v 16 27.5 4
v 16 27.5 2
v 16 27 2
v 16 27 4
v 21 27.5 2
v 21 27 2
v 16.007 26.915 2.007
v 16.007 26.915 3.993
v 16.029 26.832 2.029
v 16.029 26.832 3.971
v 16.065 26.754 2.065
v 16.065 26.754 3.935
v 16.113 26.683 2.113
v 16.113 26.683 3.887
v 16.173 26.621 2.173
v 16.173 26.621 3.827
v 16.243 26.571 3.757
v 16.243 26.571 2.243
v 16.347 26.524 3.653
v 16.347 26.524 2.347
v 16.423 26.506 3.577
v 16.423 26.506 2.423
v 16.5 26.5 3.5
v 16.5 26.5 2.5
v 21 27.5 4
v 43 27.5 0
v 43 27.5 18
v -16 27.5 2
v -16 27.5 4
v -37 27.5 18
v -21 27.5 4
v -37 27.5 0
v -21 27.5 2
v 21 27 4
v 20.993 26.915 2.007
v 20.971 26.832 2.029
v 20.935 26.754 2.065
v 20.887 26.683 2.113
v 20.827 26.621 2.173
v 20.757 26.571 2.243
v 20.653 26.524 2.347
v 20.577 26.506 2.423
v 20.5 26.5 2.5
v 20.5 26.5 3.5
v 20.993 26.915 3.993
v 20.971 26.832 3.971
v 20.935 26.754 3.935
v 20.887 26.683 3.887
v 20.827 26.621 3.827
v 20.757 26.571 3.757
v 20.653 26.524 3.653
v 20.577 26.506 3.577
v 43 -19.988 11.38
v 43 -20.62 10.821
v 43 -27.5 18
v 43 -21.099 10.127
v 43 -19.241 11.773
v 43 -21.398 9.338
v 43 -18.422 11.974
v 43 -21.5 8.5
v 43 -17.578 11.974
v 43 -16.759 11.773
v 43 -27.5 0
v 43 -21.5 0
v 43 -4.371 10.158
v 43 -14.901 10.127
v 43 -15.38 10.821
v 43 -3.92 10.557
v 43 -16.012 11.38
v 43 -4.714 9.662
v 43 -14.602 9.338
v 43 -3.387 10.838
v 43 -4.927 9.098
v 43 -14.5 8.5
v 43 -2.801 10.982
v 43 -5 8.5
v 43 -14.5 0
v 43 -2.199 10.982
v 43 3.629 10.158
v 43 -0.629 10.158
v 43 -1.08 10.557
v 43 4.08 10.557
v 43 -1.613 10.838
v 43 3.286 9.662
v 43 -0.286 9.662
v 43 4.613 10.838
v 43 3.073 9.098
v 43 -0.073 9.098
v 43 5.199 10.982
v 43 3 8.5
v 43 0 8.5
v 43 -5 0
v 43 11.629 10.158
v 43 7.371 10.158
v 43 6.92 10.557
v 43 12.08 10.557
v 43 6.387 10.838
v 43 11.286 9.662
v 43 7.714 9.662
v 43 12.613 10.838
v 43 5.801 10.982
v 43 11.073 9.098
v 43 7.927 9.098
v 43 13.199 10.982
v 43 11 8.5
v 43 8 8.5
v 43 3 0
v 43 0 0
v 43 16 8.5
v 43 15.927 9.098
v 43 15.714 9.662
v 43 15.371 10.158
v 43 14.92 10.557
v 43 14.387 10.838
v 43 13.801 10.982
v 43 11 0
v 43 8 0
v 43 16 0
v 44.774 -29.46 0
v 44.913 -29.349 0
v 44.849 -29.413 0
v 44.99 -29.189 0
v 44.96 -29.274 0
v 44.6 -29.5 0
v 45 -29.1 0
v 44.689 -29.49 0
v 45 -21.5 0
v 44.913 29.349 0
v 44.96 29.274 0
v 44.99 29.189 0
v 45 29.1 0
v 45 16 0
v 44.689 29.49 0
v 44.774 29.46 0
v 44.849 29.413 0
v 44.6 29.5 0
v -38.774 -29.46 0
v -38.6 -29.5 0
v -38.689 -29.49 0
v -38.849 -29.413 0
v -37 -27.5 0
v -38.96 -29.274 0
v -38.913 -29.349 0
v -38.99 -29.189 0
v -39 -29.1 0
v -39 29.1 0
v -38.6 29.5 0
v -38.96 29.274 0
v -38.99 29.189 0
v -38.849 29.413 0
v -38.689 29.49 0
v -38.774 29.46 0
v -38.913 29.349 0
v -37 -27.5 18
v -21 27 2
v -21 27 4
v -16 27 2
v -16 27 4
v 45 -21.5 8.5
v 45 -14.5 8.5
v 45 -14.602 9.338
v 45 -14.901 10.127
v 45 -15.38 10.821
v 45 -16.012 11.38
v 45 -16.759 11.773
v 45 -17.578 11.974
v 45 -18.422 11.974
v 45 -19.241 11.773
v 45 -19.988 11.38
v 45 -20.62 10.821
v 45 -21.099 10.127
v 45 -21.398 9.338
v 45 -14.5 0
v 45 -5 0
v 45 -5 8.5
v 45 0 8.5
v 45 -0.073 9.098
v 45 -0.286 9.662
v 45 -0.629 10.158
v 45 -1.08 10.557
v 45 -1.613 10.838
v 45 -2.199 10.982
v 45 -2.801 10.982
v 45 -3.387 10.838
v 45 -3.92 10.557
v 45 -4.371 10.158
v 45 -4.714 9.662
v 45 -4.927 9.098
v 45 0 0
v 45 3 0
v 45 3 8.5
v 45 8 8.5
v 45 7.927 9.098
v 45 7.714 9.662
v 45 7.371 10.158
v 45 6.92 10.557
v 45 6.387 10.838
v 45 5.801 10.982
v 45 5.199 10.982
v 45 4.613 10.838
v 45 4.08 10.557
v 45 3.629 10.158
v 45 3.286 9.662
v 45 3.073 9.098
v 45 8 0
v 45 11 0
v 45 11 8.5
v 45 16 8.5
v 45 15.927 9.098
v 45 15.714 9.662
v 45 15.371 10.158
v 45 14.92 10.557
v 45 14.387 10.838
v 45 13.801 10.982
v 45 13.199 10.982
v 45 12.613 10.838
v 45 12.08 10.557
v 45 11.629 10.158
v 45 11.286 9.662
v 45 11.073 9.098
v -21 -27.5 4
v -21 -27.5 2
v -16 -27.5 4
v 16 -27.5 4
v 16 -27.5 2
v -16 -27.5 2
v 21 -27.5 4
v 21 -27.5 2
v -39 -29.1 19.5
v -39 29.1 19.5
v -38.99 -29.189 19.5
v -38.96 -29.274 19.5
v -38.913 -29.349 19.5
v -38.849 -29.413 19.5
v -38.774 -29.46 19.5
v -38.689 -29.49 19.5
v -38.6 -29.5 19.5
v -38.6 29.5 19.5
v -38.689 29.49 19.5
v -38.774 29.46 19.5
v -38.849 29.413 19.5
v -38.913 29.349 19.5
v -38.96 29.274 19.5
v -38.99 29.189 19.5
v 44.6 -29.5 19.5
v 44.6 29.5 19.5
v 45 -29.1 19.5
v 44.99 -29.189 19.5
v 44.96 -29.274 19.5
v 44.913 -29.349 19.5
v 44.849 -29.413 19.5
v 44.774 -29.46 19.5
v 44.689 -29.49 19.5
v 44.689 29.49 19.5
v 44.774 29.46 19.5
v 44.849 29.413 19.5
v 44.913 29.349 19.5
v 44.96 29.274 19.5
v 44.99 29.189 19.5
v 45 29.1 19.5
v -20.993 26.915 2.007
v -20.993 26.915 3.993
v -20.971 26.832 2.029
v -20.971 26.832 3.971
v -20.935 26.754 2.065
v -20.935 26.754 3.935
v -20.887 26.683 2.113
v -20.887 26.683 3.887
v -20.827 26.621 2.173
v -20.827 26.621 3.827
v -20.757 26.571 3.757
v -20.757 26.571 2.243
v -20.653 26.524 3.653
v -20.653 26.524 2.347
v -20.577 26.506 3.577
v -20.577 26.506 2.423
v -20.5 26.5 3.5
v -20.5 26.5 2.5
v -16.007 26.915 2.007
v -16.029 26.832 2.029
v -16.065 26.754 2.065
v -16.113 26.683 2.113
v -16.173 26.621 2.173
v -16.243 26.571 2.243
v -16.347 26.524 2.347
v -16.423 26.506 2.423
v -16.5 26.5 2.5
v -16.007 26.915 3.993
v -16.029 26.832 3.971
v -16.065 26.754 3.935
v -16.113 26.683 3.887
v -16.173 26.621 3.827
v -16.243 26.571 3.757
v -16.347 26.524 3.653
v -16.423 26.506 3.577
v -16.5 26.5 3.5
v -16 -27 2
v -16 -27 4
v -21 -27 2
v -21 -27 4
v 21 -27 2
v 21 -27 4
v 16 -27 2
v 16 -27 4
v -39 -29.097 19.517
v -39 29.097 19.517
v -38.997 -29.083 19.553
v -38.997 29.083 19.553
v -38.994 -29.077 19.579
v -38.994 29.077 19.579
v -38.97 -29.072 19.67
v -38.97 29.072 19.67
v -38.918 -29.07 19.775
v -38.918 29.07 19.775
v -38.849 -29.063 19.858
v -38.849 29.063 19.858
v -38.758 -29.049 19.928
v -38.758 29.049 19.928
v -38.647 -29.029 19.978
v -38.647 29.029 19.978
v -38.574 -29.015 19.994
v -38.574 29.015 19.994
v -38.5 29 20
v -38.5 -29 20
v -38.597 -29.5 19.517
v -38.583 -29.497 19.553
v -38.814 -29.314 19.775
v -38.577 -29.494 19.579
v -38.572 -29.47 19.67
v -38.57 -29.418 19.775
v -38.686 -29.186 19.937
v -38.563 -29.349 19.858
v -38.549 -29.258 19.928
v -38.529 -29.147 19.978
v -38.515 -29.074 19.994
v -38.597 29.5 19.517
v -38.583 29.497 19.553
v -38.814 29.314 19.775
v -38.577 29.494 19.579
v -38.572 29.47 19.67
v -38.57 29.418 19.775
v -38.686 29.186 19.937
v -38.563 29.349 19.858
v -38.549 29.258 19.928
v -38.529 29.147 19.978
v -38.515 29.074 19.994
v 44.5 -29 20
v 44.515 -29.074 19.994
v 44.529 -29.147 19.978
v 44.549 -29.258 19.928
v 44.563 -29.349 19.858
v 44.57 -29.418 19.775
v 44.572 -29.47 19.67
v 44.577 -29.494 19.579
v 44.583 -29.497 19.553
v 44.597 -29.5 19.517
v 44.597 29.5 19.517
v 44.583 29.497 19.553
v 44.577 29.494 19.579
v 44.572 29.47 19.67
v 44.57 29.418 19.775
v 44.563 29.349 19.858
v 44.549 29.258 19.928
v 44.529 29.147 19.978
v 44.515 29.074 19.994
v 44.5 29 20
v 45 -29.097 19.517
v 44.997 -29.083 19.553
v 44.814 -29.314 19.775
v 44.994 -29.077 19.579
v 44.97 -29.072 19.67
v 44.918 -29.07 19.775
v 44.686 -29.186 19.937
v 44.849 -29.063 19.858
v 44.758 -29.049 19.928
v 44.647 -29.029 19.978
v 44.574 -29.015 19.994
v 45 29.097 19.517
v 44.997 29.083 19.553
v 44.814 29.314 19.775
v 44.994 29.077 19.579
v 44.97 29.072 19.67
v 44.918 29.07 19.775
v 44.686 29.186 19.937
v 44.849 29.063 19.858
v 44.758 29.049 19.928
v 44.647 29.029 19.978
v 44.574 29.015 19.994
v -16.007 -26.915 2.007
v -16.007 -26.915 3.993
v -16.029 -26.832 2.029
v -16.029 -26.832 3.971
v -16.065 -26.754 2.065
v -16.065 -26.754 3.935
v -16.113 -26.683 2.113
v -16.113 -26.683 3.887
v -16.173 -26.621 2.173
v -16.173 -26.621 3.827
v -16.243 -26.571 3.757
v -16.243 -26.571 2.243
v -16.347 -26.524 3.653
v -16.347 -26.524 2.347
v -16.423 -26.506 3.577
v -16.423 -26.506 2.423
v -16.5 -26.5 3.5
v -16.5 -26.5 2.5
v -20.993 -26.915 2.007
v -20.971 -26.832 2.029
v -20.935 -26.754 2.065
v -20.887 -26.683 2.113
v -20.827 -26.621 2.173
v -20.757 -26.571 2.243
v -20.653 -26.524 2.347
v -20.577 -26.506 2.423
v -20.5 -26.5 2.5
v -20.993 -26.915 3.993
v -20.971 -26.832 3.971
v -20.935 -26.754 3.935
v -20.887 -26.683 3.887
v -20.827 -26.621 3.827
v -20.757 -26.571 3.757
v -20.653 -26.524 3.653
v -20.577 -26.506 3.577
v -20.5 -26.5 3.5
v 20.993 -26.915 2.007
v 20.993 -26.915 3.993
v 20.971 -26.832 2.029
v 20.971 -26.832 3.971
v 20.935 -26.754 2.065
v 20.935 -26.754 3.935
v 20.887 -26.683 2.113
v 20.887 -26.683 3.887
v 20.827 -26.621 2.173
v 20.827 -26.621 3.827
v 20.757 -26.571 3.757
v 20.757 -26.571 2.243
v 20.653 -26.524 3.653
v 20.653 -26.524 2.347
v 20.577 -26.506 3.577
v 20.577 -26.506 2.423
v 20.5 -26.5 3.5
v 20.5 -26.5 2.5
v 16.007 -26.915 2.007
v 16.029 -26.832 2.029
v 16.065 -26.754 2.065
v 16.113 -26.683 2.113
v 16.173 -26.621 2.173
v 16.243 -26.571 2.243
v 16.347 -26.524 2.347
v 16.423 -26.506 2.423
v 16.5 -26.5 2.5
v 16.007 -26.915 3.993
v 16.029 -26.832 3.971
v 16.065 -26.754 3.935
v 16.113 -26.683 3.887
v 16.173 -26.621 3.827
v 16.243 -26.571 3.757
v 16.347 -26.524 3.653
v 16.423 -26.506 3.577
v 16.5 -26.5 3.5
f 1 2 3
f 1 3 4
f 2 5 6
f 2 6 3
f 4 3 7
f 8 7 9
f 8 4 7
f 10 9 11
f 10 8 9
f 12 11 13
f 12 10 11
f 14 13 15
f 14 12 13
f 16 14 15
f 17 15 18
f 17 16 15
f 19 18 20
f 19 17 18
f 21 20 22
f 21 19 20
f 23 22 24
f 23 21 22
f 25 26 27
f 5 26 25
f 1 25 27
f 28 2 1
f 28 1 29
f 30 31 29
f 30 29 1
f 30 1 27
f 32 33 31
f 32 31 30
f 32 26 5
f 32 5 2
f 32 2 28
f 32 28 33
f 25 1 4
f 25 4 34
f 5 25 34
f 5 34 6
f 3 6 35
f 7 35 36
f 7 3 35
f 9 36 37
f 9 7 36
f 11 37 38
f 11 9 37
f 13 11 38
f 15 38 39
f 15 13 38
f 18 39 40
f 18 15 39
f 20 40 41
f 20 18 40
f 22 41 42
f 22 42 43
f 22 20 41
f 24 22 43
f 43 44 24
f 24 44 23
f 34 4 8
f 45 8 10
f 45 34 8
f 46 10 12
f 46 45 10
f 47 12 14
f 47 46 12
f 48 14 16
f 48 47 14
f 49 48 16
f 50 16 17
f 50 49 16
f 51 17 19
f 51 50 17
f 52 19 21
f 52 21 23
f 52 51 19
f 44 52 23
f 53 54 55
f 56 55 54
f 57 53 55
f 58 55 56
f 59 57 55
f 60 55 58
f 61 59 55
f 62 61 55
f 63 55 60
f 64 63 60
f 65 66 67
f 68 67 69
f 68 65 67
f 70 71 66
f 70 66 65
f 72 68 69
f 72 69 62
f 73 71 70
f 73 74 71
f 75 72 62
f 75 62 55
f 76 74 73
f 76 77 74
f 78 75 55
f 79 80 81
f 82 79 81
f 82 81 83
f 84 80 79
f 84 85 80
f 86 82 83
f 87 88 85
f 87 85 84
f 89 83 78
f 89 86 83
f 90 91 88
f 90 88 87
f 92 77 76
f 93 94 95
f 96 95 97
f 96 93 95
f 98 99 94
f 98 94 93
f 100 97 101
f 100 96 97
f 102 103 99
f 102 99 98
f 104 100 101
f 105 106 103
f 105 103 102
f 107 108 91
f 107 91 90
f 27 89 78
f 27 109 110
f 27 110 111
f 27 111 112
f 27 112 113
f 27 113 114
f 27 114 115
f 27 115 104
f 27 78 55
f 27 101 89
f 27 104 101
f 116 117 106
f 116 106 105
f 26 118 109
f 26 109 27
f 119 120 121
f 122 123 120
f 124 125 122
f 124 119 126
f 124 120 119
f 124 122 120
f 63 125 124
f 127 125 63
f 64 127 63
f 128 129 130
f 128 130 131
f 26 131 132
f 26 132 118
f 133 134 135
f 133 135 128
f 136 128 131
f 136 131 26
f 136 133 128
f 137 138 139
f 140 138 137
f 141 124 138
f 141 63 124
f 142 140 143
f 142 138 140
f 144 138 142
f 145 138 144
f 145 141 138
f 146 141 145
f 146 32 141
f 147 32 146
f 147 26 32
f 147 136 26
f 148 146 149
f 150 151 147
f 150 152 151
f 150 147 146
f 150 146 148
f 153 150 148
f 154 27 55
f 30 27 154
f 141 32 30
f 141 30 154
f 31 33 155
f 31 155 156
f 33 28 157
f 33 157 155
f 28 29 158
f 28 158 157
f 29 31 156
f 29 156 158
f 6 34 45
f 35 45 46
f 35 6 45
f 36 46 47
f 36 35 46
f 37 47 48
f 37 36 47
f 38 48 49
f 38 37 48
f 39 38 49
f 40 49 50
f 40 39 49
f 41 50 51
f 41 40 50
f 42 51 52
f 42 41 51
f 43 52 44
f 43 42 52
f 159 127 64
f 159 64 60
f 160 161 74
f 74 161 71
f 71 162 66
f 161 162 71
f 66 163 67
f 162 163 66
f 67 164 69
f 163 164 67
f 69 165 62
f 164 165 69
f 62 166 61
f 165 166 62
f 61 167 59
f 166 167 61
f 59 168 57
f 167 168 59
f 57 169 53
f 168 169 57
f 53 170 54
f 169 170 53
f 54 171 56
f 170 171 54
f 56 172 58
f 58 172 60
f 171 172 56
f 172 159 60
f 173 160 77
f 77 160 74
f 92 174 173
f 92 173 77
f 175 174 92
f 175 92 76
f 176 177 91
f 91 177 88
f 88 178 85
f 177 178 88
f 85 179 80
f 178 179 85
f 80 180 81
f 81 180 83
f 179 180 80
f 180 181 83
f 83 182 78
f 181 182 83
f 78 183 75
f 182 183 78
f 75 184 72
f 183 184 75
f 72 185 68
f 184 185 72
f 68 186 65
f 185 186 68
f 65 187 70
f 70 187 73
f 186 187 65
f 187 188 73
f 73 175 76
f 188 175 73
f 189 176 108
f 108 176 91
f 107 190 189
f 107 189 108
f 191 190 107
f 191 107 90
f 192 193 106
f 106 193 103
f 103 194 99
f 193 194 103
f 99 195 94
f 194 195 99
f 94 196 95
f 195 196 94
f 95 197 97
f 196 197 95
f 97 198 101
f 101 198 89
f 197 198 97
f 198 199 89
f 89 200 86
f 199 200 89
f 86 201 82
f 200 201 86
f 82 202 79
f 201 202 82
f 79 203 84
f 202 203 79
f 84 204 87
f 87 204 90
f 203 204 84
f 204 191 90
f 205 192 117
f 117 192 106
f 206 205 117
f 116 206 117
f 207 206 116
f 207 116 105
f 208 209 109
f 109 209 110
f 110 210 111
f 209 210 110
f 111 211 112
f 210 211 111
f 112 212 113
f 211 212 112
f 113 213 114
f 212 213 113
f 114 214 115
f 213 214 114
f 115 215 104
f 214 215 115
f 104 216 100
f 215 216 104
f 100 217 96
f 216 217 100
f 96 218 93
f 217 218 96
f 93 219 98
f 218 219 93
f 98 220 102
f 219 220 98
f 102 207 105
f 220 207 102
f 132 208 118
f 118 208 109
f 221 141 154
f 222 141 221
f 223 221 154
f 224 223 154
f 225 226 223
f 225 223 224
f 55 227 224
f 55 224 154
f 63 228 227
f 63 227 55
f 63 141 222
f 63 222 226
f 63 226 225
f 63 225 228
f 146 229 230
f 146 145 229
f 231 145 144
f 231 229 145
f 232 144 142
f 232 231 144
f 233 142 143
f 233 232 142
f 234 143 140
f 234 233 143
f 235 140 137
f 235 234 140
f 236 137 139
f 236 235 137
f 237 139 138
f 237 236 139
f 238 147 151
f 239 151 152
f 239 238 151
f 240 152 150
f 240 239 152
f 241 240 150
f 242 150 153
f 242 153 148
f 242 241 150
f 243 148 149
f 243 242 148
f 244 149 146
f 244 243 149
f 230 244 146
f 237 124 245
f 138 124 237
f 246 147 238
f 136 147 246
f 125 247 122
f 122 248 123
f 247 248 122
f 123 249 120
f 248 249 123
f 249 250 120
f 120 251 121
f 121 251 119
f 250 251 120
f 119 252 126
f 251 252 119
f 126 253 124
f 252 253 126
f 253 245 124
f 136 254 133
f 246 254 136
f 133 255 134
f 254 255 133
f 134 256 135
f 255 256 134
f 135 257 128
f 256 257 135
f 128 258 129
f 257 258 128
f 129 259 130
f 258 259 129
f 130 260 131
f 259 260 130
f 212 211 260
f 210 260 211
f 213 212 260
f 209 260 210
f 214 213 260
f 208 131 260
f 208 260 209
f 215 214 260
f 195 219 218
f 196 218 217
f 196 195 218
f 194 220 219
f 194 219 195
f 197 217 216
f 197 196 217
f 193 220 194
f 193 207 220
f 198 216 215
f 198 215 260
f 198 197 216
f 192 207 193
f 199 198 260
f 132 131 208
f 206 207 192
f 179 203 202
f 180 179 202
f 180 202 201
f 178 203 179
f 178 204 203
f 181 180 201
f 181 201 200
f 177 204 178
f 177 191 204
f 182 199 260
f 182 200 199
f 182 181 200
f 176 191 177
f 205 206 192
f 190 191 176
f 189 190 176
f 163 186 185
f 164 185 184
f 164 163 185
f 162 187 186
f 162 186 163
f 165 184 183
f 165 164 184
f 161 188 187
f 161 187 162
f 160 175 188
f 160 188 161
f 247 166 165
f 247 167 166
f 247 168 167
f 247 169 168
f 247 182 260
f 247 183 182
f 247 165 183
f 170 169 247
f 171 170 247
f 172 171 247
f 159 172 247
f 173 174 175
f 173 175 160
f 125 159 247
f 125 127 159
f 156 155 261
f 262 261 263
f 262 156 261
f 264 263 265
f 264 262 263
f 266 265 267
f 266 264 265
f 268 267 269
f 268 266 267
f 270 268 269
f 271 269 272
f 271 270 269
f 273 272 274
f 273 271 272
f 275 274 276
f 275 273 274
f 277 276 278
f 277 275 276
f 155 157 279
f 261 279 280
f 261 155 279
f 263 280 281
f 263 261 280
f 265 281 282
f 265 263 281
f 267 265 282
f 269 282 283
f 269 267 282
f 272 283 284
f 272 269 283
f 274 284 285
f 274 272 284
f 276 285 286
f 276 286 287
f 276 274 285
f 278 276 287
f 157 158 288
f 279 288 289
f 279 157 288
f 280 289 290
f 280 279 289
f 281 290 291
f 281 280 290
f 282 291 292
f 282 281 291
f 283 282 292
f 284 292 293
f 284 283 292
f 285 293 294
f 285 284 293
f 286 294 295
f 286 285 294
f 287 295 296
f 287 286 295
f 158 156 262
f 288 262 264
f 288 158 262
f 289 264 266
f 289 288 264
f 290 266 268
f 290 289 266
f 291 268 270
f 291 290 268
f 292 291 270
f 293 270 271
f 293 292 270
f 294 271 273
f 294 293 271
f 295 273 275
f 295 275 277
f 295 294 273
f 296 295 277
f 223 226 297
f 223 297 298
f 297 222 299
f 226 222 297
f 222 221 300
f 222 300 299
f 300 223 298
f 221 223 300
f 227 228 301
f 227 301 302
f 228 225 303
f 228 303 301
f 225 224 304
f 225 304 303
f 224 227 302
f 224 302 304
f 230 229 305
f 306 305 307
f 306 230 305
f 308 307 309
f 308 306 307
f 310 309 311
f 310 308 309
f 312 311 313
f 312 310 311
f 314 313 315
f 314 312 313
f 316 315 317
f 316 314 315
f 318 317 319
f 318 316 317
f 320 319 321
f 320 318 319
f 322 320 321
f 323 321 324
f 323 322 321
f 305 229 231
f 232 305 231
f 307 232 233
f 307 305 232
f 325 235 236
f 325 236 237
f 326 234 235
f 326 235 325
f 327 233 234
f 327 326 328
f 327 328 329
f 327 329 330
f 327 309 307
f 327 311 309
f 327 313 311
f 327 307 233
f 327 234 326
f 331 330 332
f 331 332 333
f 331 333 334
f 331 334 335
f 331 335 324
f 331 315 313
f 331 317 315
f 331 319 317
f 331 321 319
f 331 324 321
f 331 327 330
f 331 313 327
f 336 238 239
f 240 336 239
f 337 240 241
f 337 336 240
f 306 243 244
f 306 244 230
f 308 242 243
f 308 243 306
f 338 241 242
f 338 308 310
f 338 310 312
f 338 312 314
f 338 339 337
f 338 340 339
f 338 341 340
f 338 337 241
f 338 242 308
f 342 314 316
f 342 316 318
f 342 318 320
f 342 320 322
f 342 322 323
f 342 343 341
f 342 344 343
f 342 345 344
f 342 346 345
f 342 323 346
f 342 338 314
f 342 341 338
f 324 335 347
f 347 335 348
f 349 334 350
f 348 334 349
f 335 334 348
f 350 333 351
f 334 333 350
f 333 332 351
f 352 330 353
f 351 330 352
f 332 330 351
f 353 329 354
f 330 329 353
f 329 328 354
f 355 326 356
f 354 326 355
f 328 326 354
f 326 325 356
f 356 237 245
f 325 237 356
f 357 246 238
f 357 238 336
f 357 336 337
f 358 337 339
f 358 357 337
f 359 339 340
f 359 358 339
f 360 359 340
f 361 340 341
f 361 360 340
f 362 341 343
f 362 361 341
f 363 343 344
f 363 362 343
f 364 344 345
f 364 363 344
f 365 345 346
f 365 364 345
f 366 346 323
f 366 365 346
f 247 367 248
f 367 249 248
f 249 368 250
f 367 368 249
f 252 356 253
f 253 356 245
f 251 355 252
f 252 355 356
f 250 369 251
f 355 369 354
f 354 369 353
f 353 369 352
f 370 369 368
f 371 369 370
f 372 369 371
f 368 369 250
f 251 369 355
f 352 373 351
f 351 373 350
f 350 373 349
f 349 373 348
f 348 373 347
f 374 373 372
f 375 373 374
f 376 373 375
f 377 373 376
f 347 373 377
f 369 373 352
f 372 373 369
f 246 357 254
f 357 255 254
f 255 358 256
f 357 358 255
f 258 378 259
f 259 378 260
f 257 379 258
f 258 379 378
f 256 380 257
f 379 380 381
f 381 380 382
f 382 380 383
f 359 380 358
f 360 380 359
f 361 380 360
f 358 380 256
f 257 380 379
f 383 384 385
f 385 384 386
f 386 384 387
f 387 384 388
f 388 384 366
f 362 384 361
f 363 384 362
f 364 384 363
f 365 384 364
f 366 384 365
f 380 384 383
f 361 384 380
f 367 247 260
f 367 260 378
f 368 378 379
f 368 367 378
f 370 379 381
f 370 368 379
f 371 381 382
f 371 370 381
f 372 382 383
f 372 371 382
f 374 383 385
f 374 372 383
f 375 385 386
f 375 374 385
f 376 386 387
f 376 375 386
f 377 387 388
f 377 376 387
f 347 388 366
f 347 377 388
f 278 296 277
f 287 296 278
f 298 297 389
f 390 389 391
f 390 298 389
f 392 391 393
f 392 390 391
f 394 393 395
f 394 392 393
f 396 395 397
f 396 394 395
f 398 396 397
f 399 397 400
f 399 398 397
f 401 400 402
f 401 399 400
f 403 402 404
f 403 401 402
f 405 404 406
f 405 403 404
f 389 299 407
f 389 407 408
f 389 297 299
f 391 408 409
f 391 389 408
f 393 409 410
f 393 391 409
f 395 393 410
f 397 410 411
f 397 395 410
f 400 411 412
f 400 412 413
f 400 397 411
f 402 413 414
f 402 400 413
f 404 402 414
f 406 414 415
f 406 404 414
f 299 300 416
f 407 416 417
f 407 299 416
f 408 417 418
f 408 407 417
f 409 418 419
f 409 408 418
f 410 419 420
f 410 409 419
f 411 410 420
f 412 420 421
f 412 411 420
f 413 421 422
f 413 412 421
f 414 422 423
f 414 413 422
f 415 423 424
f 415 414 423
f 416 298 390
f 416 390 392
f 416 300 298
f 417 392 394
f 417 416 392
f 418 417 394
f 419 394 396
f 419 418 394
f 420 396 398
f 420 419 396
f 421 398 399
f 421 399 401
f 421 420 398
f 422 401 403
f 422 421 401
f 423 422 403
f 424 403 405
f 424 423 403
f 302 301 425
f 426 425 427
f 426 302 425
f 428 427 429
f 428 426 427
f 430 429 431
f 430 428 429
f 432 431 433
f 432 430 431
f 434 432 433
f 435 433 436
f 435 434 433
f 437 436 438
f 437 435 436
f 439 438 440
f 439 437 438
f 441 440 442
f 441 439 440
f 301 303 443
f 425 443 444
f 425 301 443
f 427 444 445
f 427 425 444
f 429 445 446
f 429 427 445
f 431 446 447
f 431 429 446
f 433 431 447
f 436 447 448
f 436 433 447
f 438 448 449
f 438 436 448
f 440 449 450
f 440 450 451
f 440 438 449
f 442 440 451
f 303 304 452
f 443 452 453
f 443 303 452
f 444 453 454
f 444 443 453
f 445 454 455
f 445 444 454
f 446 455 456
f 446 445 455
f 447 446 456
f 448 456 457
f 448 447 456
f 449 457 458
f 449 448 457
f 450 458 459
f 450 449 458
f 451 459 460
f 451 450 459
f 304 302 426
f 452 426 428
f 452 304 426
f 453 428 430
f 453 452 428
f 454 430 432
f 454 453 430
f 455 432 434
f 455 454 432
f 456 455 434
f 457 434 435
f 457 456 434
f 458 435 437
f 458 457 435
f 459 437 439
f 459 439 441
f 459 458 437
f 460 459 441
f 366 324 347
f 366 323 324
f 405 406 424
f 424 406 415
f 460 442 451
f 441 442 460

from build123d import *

# Parameters (mm, degrees)
SKETCH_W        = 84
SKETCH_H        = 59
PAD_DEPTH       = 20
SKETCH002_W     = 80
SKETCH002_H     = 55
POCKET_DEPTH    = 18
SKETCH003_W     = 5
SKETCH003_H     = 2
PAD001_DEPTH    = 1
SKETCH004_W     = 5
SKETCH004_H     = 2
PAD002_DEPTH    = 1
POCKET001_DEPTH = 2
FILLET_R        = 0.5
FILLET001_R     = 0.4
FILLET002_R     = 0.5
FILLET003_R     = 0.5


with BuildPart() as part:
    # Sketch → Pad (new body)
    with BuildSketch(Plane.XY):
        with Locations((3, 0)):
            Rectangle(SKETCH_W, SKETCH_H)
    extrude(amount=PAD_DEPTH)

    # Sketch002 (on Face5 of Pad) → Pocket (cut)
    with BuildSketch(Plane(origin=(0, 0, 0), x_dir=(1, 0, 0), z_dir=(0, 0, -1))):
        with Locations((3, 0)):
            Rectangle(SKETCH002_W, SKETCH002_H)
    extrude(amount=-POCKET_DEPTH, mode=Mode.SUBTRACT)

    # Sketch003 (on Face8 of Pocket) → Pad001 (join)
    with BuildSketch(Plane.XZ.offset(-27.5)):
        with Locations((-18.5, 3)):
            Rectangle(SKETCH003_W, SKETCH003_H)
        with Locations((18.5, 3)):
            Rectangle(SKETCH003_W, SKETCH003_H)
    extrude(amount=PAD001_DEPTH)

    # Sketch004 (on Face10 of Pad001) → Pad002 (join)
    with BuildSketch(Plane(origin=(0, -27.5, 0), x_dir=(-1, 0, 0), z_dir=(0, 1, 0))):
        with Locations((-18.5, 3)):
            Rectangle(SKETCH004_W, SKETCH004_H)
        with Locations((18.5, 3)):
            Rectangle(SKETCH004_W, SKETCH004_H)
    extrude(amount=PAD002_DEPTH)

    # Sketch005 (on Face3 of Pad002) → Pocket001 (cut)
    with BuildSketch(Plane.YZ.offset(45)):
        with BuildLine():
            ThreePointArc((-21.5, 0), (-18, -3.5), (-14.5, 0))
            Line((-14.5, 0), (-14.5, 8.5))
            ThreePointArc((-14.5, 8.5), (-18, 12), (-21.5, 8.5))
            Line((-21.5, 0), (-21.5, 8.5))
        make_face()
        with BuildLine():
            ThreePointArc((-5, 0), (-2.5, -2.5), (0, 0))
            Line((0, 0), (0, 8.5))
            ThreePointArc((0, 8.5), (-2.5, 11), (-5, 8.5))
            Line((-5, 0), (-5, 8.5))
        make_face()
        with BuildLine():
            ThreePointArc((3, 0), (5.5, -2.5), (8, 0))
            Line((8, 0), (8, 8.5))
            ThreePointArc((8, 8.5), (5.5, 11), (3, 8.5))
            Line((3, 0), (3, 8.5))
        make_face()
        with BuildLine():
            ThreePointArc((11, 0), (13.5, -2.5), (16, 0))
            Line((16, 0), (16, 8.5))
            ThreePointArc((16, 8.5), (13.5, 11), (11, 8.5))
            Line((11, 0), (11, 8.5))
        make_face()
    extrude(amount=-POCKET001_DEPTH, mode=Mode.SUBTRACT)

    # Fillet
    fillet_edges = [part.edges().sort_by_distance(p)[0] for p in [
        (3, 29.5, 20),
        (-39, 0, 20),
        (3, -29.5, 20),
        (45, 0, 20),
    ]]
    fillet(fillet_edges, radius=FILLET_R)

    # Fillet001
    fillet001_edges = [part.edges().sort_by_distance(p)[0] for p in [
        (45, 29.5, 9.75),
        (45, -29.5, 9.75),
        (-39, 29.5, 9.75),
        (-39, -29.5, 9.75),
    ]]
    fillet(fillet001_edges, radius=FILLET001_R)

    # Fillet002
    fillet002_edges = [part.edges().sort_by_distance(p)[0] for p in [
        (-18.5, -26.5, 2),
        (-21, -26.5, 3),
        (-18.5, -26.5, 4),
        (-16, -26.5, 3),
        (16, -26.5, 3),
        (18.5, -26.5, 2),
        (21, -26.5, 3),
        (18.5, -26.5, 4),
    ]]
    fillet(fillet002_edges, radius=FILLET002_R)

    # Fillet003
    fillet003_edges = [part.edges().sort_by_distance(p)[0] for p in [
        (-21, 26.5, 3),
        (-18.5, 26.5, 4),
        (-18.5, 26.5, 2),
        (-16, 26.5, 3),
        (18.5, 26.5, 2),
        (16, 26.5, 3),
        (18.5, 26.5, 4),
        (21, 26.5, 3),
    ]]
    fillet(fillet003_edges, radius=FILLET003_R)


solid = part.part
